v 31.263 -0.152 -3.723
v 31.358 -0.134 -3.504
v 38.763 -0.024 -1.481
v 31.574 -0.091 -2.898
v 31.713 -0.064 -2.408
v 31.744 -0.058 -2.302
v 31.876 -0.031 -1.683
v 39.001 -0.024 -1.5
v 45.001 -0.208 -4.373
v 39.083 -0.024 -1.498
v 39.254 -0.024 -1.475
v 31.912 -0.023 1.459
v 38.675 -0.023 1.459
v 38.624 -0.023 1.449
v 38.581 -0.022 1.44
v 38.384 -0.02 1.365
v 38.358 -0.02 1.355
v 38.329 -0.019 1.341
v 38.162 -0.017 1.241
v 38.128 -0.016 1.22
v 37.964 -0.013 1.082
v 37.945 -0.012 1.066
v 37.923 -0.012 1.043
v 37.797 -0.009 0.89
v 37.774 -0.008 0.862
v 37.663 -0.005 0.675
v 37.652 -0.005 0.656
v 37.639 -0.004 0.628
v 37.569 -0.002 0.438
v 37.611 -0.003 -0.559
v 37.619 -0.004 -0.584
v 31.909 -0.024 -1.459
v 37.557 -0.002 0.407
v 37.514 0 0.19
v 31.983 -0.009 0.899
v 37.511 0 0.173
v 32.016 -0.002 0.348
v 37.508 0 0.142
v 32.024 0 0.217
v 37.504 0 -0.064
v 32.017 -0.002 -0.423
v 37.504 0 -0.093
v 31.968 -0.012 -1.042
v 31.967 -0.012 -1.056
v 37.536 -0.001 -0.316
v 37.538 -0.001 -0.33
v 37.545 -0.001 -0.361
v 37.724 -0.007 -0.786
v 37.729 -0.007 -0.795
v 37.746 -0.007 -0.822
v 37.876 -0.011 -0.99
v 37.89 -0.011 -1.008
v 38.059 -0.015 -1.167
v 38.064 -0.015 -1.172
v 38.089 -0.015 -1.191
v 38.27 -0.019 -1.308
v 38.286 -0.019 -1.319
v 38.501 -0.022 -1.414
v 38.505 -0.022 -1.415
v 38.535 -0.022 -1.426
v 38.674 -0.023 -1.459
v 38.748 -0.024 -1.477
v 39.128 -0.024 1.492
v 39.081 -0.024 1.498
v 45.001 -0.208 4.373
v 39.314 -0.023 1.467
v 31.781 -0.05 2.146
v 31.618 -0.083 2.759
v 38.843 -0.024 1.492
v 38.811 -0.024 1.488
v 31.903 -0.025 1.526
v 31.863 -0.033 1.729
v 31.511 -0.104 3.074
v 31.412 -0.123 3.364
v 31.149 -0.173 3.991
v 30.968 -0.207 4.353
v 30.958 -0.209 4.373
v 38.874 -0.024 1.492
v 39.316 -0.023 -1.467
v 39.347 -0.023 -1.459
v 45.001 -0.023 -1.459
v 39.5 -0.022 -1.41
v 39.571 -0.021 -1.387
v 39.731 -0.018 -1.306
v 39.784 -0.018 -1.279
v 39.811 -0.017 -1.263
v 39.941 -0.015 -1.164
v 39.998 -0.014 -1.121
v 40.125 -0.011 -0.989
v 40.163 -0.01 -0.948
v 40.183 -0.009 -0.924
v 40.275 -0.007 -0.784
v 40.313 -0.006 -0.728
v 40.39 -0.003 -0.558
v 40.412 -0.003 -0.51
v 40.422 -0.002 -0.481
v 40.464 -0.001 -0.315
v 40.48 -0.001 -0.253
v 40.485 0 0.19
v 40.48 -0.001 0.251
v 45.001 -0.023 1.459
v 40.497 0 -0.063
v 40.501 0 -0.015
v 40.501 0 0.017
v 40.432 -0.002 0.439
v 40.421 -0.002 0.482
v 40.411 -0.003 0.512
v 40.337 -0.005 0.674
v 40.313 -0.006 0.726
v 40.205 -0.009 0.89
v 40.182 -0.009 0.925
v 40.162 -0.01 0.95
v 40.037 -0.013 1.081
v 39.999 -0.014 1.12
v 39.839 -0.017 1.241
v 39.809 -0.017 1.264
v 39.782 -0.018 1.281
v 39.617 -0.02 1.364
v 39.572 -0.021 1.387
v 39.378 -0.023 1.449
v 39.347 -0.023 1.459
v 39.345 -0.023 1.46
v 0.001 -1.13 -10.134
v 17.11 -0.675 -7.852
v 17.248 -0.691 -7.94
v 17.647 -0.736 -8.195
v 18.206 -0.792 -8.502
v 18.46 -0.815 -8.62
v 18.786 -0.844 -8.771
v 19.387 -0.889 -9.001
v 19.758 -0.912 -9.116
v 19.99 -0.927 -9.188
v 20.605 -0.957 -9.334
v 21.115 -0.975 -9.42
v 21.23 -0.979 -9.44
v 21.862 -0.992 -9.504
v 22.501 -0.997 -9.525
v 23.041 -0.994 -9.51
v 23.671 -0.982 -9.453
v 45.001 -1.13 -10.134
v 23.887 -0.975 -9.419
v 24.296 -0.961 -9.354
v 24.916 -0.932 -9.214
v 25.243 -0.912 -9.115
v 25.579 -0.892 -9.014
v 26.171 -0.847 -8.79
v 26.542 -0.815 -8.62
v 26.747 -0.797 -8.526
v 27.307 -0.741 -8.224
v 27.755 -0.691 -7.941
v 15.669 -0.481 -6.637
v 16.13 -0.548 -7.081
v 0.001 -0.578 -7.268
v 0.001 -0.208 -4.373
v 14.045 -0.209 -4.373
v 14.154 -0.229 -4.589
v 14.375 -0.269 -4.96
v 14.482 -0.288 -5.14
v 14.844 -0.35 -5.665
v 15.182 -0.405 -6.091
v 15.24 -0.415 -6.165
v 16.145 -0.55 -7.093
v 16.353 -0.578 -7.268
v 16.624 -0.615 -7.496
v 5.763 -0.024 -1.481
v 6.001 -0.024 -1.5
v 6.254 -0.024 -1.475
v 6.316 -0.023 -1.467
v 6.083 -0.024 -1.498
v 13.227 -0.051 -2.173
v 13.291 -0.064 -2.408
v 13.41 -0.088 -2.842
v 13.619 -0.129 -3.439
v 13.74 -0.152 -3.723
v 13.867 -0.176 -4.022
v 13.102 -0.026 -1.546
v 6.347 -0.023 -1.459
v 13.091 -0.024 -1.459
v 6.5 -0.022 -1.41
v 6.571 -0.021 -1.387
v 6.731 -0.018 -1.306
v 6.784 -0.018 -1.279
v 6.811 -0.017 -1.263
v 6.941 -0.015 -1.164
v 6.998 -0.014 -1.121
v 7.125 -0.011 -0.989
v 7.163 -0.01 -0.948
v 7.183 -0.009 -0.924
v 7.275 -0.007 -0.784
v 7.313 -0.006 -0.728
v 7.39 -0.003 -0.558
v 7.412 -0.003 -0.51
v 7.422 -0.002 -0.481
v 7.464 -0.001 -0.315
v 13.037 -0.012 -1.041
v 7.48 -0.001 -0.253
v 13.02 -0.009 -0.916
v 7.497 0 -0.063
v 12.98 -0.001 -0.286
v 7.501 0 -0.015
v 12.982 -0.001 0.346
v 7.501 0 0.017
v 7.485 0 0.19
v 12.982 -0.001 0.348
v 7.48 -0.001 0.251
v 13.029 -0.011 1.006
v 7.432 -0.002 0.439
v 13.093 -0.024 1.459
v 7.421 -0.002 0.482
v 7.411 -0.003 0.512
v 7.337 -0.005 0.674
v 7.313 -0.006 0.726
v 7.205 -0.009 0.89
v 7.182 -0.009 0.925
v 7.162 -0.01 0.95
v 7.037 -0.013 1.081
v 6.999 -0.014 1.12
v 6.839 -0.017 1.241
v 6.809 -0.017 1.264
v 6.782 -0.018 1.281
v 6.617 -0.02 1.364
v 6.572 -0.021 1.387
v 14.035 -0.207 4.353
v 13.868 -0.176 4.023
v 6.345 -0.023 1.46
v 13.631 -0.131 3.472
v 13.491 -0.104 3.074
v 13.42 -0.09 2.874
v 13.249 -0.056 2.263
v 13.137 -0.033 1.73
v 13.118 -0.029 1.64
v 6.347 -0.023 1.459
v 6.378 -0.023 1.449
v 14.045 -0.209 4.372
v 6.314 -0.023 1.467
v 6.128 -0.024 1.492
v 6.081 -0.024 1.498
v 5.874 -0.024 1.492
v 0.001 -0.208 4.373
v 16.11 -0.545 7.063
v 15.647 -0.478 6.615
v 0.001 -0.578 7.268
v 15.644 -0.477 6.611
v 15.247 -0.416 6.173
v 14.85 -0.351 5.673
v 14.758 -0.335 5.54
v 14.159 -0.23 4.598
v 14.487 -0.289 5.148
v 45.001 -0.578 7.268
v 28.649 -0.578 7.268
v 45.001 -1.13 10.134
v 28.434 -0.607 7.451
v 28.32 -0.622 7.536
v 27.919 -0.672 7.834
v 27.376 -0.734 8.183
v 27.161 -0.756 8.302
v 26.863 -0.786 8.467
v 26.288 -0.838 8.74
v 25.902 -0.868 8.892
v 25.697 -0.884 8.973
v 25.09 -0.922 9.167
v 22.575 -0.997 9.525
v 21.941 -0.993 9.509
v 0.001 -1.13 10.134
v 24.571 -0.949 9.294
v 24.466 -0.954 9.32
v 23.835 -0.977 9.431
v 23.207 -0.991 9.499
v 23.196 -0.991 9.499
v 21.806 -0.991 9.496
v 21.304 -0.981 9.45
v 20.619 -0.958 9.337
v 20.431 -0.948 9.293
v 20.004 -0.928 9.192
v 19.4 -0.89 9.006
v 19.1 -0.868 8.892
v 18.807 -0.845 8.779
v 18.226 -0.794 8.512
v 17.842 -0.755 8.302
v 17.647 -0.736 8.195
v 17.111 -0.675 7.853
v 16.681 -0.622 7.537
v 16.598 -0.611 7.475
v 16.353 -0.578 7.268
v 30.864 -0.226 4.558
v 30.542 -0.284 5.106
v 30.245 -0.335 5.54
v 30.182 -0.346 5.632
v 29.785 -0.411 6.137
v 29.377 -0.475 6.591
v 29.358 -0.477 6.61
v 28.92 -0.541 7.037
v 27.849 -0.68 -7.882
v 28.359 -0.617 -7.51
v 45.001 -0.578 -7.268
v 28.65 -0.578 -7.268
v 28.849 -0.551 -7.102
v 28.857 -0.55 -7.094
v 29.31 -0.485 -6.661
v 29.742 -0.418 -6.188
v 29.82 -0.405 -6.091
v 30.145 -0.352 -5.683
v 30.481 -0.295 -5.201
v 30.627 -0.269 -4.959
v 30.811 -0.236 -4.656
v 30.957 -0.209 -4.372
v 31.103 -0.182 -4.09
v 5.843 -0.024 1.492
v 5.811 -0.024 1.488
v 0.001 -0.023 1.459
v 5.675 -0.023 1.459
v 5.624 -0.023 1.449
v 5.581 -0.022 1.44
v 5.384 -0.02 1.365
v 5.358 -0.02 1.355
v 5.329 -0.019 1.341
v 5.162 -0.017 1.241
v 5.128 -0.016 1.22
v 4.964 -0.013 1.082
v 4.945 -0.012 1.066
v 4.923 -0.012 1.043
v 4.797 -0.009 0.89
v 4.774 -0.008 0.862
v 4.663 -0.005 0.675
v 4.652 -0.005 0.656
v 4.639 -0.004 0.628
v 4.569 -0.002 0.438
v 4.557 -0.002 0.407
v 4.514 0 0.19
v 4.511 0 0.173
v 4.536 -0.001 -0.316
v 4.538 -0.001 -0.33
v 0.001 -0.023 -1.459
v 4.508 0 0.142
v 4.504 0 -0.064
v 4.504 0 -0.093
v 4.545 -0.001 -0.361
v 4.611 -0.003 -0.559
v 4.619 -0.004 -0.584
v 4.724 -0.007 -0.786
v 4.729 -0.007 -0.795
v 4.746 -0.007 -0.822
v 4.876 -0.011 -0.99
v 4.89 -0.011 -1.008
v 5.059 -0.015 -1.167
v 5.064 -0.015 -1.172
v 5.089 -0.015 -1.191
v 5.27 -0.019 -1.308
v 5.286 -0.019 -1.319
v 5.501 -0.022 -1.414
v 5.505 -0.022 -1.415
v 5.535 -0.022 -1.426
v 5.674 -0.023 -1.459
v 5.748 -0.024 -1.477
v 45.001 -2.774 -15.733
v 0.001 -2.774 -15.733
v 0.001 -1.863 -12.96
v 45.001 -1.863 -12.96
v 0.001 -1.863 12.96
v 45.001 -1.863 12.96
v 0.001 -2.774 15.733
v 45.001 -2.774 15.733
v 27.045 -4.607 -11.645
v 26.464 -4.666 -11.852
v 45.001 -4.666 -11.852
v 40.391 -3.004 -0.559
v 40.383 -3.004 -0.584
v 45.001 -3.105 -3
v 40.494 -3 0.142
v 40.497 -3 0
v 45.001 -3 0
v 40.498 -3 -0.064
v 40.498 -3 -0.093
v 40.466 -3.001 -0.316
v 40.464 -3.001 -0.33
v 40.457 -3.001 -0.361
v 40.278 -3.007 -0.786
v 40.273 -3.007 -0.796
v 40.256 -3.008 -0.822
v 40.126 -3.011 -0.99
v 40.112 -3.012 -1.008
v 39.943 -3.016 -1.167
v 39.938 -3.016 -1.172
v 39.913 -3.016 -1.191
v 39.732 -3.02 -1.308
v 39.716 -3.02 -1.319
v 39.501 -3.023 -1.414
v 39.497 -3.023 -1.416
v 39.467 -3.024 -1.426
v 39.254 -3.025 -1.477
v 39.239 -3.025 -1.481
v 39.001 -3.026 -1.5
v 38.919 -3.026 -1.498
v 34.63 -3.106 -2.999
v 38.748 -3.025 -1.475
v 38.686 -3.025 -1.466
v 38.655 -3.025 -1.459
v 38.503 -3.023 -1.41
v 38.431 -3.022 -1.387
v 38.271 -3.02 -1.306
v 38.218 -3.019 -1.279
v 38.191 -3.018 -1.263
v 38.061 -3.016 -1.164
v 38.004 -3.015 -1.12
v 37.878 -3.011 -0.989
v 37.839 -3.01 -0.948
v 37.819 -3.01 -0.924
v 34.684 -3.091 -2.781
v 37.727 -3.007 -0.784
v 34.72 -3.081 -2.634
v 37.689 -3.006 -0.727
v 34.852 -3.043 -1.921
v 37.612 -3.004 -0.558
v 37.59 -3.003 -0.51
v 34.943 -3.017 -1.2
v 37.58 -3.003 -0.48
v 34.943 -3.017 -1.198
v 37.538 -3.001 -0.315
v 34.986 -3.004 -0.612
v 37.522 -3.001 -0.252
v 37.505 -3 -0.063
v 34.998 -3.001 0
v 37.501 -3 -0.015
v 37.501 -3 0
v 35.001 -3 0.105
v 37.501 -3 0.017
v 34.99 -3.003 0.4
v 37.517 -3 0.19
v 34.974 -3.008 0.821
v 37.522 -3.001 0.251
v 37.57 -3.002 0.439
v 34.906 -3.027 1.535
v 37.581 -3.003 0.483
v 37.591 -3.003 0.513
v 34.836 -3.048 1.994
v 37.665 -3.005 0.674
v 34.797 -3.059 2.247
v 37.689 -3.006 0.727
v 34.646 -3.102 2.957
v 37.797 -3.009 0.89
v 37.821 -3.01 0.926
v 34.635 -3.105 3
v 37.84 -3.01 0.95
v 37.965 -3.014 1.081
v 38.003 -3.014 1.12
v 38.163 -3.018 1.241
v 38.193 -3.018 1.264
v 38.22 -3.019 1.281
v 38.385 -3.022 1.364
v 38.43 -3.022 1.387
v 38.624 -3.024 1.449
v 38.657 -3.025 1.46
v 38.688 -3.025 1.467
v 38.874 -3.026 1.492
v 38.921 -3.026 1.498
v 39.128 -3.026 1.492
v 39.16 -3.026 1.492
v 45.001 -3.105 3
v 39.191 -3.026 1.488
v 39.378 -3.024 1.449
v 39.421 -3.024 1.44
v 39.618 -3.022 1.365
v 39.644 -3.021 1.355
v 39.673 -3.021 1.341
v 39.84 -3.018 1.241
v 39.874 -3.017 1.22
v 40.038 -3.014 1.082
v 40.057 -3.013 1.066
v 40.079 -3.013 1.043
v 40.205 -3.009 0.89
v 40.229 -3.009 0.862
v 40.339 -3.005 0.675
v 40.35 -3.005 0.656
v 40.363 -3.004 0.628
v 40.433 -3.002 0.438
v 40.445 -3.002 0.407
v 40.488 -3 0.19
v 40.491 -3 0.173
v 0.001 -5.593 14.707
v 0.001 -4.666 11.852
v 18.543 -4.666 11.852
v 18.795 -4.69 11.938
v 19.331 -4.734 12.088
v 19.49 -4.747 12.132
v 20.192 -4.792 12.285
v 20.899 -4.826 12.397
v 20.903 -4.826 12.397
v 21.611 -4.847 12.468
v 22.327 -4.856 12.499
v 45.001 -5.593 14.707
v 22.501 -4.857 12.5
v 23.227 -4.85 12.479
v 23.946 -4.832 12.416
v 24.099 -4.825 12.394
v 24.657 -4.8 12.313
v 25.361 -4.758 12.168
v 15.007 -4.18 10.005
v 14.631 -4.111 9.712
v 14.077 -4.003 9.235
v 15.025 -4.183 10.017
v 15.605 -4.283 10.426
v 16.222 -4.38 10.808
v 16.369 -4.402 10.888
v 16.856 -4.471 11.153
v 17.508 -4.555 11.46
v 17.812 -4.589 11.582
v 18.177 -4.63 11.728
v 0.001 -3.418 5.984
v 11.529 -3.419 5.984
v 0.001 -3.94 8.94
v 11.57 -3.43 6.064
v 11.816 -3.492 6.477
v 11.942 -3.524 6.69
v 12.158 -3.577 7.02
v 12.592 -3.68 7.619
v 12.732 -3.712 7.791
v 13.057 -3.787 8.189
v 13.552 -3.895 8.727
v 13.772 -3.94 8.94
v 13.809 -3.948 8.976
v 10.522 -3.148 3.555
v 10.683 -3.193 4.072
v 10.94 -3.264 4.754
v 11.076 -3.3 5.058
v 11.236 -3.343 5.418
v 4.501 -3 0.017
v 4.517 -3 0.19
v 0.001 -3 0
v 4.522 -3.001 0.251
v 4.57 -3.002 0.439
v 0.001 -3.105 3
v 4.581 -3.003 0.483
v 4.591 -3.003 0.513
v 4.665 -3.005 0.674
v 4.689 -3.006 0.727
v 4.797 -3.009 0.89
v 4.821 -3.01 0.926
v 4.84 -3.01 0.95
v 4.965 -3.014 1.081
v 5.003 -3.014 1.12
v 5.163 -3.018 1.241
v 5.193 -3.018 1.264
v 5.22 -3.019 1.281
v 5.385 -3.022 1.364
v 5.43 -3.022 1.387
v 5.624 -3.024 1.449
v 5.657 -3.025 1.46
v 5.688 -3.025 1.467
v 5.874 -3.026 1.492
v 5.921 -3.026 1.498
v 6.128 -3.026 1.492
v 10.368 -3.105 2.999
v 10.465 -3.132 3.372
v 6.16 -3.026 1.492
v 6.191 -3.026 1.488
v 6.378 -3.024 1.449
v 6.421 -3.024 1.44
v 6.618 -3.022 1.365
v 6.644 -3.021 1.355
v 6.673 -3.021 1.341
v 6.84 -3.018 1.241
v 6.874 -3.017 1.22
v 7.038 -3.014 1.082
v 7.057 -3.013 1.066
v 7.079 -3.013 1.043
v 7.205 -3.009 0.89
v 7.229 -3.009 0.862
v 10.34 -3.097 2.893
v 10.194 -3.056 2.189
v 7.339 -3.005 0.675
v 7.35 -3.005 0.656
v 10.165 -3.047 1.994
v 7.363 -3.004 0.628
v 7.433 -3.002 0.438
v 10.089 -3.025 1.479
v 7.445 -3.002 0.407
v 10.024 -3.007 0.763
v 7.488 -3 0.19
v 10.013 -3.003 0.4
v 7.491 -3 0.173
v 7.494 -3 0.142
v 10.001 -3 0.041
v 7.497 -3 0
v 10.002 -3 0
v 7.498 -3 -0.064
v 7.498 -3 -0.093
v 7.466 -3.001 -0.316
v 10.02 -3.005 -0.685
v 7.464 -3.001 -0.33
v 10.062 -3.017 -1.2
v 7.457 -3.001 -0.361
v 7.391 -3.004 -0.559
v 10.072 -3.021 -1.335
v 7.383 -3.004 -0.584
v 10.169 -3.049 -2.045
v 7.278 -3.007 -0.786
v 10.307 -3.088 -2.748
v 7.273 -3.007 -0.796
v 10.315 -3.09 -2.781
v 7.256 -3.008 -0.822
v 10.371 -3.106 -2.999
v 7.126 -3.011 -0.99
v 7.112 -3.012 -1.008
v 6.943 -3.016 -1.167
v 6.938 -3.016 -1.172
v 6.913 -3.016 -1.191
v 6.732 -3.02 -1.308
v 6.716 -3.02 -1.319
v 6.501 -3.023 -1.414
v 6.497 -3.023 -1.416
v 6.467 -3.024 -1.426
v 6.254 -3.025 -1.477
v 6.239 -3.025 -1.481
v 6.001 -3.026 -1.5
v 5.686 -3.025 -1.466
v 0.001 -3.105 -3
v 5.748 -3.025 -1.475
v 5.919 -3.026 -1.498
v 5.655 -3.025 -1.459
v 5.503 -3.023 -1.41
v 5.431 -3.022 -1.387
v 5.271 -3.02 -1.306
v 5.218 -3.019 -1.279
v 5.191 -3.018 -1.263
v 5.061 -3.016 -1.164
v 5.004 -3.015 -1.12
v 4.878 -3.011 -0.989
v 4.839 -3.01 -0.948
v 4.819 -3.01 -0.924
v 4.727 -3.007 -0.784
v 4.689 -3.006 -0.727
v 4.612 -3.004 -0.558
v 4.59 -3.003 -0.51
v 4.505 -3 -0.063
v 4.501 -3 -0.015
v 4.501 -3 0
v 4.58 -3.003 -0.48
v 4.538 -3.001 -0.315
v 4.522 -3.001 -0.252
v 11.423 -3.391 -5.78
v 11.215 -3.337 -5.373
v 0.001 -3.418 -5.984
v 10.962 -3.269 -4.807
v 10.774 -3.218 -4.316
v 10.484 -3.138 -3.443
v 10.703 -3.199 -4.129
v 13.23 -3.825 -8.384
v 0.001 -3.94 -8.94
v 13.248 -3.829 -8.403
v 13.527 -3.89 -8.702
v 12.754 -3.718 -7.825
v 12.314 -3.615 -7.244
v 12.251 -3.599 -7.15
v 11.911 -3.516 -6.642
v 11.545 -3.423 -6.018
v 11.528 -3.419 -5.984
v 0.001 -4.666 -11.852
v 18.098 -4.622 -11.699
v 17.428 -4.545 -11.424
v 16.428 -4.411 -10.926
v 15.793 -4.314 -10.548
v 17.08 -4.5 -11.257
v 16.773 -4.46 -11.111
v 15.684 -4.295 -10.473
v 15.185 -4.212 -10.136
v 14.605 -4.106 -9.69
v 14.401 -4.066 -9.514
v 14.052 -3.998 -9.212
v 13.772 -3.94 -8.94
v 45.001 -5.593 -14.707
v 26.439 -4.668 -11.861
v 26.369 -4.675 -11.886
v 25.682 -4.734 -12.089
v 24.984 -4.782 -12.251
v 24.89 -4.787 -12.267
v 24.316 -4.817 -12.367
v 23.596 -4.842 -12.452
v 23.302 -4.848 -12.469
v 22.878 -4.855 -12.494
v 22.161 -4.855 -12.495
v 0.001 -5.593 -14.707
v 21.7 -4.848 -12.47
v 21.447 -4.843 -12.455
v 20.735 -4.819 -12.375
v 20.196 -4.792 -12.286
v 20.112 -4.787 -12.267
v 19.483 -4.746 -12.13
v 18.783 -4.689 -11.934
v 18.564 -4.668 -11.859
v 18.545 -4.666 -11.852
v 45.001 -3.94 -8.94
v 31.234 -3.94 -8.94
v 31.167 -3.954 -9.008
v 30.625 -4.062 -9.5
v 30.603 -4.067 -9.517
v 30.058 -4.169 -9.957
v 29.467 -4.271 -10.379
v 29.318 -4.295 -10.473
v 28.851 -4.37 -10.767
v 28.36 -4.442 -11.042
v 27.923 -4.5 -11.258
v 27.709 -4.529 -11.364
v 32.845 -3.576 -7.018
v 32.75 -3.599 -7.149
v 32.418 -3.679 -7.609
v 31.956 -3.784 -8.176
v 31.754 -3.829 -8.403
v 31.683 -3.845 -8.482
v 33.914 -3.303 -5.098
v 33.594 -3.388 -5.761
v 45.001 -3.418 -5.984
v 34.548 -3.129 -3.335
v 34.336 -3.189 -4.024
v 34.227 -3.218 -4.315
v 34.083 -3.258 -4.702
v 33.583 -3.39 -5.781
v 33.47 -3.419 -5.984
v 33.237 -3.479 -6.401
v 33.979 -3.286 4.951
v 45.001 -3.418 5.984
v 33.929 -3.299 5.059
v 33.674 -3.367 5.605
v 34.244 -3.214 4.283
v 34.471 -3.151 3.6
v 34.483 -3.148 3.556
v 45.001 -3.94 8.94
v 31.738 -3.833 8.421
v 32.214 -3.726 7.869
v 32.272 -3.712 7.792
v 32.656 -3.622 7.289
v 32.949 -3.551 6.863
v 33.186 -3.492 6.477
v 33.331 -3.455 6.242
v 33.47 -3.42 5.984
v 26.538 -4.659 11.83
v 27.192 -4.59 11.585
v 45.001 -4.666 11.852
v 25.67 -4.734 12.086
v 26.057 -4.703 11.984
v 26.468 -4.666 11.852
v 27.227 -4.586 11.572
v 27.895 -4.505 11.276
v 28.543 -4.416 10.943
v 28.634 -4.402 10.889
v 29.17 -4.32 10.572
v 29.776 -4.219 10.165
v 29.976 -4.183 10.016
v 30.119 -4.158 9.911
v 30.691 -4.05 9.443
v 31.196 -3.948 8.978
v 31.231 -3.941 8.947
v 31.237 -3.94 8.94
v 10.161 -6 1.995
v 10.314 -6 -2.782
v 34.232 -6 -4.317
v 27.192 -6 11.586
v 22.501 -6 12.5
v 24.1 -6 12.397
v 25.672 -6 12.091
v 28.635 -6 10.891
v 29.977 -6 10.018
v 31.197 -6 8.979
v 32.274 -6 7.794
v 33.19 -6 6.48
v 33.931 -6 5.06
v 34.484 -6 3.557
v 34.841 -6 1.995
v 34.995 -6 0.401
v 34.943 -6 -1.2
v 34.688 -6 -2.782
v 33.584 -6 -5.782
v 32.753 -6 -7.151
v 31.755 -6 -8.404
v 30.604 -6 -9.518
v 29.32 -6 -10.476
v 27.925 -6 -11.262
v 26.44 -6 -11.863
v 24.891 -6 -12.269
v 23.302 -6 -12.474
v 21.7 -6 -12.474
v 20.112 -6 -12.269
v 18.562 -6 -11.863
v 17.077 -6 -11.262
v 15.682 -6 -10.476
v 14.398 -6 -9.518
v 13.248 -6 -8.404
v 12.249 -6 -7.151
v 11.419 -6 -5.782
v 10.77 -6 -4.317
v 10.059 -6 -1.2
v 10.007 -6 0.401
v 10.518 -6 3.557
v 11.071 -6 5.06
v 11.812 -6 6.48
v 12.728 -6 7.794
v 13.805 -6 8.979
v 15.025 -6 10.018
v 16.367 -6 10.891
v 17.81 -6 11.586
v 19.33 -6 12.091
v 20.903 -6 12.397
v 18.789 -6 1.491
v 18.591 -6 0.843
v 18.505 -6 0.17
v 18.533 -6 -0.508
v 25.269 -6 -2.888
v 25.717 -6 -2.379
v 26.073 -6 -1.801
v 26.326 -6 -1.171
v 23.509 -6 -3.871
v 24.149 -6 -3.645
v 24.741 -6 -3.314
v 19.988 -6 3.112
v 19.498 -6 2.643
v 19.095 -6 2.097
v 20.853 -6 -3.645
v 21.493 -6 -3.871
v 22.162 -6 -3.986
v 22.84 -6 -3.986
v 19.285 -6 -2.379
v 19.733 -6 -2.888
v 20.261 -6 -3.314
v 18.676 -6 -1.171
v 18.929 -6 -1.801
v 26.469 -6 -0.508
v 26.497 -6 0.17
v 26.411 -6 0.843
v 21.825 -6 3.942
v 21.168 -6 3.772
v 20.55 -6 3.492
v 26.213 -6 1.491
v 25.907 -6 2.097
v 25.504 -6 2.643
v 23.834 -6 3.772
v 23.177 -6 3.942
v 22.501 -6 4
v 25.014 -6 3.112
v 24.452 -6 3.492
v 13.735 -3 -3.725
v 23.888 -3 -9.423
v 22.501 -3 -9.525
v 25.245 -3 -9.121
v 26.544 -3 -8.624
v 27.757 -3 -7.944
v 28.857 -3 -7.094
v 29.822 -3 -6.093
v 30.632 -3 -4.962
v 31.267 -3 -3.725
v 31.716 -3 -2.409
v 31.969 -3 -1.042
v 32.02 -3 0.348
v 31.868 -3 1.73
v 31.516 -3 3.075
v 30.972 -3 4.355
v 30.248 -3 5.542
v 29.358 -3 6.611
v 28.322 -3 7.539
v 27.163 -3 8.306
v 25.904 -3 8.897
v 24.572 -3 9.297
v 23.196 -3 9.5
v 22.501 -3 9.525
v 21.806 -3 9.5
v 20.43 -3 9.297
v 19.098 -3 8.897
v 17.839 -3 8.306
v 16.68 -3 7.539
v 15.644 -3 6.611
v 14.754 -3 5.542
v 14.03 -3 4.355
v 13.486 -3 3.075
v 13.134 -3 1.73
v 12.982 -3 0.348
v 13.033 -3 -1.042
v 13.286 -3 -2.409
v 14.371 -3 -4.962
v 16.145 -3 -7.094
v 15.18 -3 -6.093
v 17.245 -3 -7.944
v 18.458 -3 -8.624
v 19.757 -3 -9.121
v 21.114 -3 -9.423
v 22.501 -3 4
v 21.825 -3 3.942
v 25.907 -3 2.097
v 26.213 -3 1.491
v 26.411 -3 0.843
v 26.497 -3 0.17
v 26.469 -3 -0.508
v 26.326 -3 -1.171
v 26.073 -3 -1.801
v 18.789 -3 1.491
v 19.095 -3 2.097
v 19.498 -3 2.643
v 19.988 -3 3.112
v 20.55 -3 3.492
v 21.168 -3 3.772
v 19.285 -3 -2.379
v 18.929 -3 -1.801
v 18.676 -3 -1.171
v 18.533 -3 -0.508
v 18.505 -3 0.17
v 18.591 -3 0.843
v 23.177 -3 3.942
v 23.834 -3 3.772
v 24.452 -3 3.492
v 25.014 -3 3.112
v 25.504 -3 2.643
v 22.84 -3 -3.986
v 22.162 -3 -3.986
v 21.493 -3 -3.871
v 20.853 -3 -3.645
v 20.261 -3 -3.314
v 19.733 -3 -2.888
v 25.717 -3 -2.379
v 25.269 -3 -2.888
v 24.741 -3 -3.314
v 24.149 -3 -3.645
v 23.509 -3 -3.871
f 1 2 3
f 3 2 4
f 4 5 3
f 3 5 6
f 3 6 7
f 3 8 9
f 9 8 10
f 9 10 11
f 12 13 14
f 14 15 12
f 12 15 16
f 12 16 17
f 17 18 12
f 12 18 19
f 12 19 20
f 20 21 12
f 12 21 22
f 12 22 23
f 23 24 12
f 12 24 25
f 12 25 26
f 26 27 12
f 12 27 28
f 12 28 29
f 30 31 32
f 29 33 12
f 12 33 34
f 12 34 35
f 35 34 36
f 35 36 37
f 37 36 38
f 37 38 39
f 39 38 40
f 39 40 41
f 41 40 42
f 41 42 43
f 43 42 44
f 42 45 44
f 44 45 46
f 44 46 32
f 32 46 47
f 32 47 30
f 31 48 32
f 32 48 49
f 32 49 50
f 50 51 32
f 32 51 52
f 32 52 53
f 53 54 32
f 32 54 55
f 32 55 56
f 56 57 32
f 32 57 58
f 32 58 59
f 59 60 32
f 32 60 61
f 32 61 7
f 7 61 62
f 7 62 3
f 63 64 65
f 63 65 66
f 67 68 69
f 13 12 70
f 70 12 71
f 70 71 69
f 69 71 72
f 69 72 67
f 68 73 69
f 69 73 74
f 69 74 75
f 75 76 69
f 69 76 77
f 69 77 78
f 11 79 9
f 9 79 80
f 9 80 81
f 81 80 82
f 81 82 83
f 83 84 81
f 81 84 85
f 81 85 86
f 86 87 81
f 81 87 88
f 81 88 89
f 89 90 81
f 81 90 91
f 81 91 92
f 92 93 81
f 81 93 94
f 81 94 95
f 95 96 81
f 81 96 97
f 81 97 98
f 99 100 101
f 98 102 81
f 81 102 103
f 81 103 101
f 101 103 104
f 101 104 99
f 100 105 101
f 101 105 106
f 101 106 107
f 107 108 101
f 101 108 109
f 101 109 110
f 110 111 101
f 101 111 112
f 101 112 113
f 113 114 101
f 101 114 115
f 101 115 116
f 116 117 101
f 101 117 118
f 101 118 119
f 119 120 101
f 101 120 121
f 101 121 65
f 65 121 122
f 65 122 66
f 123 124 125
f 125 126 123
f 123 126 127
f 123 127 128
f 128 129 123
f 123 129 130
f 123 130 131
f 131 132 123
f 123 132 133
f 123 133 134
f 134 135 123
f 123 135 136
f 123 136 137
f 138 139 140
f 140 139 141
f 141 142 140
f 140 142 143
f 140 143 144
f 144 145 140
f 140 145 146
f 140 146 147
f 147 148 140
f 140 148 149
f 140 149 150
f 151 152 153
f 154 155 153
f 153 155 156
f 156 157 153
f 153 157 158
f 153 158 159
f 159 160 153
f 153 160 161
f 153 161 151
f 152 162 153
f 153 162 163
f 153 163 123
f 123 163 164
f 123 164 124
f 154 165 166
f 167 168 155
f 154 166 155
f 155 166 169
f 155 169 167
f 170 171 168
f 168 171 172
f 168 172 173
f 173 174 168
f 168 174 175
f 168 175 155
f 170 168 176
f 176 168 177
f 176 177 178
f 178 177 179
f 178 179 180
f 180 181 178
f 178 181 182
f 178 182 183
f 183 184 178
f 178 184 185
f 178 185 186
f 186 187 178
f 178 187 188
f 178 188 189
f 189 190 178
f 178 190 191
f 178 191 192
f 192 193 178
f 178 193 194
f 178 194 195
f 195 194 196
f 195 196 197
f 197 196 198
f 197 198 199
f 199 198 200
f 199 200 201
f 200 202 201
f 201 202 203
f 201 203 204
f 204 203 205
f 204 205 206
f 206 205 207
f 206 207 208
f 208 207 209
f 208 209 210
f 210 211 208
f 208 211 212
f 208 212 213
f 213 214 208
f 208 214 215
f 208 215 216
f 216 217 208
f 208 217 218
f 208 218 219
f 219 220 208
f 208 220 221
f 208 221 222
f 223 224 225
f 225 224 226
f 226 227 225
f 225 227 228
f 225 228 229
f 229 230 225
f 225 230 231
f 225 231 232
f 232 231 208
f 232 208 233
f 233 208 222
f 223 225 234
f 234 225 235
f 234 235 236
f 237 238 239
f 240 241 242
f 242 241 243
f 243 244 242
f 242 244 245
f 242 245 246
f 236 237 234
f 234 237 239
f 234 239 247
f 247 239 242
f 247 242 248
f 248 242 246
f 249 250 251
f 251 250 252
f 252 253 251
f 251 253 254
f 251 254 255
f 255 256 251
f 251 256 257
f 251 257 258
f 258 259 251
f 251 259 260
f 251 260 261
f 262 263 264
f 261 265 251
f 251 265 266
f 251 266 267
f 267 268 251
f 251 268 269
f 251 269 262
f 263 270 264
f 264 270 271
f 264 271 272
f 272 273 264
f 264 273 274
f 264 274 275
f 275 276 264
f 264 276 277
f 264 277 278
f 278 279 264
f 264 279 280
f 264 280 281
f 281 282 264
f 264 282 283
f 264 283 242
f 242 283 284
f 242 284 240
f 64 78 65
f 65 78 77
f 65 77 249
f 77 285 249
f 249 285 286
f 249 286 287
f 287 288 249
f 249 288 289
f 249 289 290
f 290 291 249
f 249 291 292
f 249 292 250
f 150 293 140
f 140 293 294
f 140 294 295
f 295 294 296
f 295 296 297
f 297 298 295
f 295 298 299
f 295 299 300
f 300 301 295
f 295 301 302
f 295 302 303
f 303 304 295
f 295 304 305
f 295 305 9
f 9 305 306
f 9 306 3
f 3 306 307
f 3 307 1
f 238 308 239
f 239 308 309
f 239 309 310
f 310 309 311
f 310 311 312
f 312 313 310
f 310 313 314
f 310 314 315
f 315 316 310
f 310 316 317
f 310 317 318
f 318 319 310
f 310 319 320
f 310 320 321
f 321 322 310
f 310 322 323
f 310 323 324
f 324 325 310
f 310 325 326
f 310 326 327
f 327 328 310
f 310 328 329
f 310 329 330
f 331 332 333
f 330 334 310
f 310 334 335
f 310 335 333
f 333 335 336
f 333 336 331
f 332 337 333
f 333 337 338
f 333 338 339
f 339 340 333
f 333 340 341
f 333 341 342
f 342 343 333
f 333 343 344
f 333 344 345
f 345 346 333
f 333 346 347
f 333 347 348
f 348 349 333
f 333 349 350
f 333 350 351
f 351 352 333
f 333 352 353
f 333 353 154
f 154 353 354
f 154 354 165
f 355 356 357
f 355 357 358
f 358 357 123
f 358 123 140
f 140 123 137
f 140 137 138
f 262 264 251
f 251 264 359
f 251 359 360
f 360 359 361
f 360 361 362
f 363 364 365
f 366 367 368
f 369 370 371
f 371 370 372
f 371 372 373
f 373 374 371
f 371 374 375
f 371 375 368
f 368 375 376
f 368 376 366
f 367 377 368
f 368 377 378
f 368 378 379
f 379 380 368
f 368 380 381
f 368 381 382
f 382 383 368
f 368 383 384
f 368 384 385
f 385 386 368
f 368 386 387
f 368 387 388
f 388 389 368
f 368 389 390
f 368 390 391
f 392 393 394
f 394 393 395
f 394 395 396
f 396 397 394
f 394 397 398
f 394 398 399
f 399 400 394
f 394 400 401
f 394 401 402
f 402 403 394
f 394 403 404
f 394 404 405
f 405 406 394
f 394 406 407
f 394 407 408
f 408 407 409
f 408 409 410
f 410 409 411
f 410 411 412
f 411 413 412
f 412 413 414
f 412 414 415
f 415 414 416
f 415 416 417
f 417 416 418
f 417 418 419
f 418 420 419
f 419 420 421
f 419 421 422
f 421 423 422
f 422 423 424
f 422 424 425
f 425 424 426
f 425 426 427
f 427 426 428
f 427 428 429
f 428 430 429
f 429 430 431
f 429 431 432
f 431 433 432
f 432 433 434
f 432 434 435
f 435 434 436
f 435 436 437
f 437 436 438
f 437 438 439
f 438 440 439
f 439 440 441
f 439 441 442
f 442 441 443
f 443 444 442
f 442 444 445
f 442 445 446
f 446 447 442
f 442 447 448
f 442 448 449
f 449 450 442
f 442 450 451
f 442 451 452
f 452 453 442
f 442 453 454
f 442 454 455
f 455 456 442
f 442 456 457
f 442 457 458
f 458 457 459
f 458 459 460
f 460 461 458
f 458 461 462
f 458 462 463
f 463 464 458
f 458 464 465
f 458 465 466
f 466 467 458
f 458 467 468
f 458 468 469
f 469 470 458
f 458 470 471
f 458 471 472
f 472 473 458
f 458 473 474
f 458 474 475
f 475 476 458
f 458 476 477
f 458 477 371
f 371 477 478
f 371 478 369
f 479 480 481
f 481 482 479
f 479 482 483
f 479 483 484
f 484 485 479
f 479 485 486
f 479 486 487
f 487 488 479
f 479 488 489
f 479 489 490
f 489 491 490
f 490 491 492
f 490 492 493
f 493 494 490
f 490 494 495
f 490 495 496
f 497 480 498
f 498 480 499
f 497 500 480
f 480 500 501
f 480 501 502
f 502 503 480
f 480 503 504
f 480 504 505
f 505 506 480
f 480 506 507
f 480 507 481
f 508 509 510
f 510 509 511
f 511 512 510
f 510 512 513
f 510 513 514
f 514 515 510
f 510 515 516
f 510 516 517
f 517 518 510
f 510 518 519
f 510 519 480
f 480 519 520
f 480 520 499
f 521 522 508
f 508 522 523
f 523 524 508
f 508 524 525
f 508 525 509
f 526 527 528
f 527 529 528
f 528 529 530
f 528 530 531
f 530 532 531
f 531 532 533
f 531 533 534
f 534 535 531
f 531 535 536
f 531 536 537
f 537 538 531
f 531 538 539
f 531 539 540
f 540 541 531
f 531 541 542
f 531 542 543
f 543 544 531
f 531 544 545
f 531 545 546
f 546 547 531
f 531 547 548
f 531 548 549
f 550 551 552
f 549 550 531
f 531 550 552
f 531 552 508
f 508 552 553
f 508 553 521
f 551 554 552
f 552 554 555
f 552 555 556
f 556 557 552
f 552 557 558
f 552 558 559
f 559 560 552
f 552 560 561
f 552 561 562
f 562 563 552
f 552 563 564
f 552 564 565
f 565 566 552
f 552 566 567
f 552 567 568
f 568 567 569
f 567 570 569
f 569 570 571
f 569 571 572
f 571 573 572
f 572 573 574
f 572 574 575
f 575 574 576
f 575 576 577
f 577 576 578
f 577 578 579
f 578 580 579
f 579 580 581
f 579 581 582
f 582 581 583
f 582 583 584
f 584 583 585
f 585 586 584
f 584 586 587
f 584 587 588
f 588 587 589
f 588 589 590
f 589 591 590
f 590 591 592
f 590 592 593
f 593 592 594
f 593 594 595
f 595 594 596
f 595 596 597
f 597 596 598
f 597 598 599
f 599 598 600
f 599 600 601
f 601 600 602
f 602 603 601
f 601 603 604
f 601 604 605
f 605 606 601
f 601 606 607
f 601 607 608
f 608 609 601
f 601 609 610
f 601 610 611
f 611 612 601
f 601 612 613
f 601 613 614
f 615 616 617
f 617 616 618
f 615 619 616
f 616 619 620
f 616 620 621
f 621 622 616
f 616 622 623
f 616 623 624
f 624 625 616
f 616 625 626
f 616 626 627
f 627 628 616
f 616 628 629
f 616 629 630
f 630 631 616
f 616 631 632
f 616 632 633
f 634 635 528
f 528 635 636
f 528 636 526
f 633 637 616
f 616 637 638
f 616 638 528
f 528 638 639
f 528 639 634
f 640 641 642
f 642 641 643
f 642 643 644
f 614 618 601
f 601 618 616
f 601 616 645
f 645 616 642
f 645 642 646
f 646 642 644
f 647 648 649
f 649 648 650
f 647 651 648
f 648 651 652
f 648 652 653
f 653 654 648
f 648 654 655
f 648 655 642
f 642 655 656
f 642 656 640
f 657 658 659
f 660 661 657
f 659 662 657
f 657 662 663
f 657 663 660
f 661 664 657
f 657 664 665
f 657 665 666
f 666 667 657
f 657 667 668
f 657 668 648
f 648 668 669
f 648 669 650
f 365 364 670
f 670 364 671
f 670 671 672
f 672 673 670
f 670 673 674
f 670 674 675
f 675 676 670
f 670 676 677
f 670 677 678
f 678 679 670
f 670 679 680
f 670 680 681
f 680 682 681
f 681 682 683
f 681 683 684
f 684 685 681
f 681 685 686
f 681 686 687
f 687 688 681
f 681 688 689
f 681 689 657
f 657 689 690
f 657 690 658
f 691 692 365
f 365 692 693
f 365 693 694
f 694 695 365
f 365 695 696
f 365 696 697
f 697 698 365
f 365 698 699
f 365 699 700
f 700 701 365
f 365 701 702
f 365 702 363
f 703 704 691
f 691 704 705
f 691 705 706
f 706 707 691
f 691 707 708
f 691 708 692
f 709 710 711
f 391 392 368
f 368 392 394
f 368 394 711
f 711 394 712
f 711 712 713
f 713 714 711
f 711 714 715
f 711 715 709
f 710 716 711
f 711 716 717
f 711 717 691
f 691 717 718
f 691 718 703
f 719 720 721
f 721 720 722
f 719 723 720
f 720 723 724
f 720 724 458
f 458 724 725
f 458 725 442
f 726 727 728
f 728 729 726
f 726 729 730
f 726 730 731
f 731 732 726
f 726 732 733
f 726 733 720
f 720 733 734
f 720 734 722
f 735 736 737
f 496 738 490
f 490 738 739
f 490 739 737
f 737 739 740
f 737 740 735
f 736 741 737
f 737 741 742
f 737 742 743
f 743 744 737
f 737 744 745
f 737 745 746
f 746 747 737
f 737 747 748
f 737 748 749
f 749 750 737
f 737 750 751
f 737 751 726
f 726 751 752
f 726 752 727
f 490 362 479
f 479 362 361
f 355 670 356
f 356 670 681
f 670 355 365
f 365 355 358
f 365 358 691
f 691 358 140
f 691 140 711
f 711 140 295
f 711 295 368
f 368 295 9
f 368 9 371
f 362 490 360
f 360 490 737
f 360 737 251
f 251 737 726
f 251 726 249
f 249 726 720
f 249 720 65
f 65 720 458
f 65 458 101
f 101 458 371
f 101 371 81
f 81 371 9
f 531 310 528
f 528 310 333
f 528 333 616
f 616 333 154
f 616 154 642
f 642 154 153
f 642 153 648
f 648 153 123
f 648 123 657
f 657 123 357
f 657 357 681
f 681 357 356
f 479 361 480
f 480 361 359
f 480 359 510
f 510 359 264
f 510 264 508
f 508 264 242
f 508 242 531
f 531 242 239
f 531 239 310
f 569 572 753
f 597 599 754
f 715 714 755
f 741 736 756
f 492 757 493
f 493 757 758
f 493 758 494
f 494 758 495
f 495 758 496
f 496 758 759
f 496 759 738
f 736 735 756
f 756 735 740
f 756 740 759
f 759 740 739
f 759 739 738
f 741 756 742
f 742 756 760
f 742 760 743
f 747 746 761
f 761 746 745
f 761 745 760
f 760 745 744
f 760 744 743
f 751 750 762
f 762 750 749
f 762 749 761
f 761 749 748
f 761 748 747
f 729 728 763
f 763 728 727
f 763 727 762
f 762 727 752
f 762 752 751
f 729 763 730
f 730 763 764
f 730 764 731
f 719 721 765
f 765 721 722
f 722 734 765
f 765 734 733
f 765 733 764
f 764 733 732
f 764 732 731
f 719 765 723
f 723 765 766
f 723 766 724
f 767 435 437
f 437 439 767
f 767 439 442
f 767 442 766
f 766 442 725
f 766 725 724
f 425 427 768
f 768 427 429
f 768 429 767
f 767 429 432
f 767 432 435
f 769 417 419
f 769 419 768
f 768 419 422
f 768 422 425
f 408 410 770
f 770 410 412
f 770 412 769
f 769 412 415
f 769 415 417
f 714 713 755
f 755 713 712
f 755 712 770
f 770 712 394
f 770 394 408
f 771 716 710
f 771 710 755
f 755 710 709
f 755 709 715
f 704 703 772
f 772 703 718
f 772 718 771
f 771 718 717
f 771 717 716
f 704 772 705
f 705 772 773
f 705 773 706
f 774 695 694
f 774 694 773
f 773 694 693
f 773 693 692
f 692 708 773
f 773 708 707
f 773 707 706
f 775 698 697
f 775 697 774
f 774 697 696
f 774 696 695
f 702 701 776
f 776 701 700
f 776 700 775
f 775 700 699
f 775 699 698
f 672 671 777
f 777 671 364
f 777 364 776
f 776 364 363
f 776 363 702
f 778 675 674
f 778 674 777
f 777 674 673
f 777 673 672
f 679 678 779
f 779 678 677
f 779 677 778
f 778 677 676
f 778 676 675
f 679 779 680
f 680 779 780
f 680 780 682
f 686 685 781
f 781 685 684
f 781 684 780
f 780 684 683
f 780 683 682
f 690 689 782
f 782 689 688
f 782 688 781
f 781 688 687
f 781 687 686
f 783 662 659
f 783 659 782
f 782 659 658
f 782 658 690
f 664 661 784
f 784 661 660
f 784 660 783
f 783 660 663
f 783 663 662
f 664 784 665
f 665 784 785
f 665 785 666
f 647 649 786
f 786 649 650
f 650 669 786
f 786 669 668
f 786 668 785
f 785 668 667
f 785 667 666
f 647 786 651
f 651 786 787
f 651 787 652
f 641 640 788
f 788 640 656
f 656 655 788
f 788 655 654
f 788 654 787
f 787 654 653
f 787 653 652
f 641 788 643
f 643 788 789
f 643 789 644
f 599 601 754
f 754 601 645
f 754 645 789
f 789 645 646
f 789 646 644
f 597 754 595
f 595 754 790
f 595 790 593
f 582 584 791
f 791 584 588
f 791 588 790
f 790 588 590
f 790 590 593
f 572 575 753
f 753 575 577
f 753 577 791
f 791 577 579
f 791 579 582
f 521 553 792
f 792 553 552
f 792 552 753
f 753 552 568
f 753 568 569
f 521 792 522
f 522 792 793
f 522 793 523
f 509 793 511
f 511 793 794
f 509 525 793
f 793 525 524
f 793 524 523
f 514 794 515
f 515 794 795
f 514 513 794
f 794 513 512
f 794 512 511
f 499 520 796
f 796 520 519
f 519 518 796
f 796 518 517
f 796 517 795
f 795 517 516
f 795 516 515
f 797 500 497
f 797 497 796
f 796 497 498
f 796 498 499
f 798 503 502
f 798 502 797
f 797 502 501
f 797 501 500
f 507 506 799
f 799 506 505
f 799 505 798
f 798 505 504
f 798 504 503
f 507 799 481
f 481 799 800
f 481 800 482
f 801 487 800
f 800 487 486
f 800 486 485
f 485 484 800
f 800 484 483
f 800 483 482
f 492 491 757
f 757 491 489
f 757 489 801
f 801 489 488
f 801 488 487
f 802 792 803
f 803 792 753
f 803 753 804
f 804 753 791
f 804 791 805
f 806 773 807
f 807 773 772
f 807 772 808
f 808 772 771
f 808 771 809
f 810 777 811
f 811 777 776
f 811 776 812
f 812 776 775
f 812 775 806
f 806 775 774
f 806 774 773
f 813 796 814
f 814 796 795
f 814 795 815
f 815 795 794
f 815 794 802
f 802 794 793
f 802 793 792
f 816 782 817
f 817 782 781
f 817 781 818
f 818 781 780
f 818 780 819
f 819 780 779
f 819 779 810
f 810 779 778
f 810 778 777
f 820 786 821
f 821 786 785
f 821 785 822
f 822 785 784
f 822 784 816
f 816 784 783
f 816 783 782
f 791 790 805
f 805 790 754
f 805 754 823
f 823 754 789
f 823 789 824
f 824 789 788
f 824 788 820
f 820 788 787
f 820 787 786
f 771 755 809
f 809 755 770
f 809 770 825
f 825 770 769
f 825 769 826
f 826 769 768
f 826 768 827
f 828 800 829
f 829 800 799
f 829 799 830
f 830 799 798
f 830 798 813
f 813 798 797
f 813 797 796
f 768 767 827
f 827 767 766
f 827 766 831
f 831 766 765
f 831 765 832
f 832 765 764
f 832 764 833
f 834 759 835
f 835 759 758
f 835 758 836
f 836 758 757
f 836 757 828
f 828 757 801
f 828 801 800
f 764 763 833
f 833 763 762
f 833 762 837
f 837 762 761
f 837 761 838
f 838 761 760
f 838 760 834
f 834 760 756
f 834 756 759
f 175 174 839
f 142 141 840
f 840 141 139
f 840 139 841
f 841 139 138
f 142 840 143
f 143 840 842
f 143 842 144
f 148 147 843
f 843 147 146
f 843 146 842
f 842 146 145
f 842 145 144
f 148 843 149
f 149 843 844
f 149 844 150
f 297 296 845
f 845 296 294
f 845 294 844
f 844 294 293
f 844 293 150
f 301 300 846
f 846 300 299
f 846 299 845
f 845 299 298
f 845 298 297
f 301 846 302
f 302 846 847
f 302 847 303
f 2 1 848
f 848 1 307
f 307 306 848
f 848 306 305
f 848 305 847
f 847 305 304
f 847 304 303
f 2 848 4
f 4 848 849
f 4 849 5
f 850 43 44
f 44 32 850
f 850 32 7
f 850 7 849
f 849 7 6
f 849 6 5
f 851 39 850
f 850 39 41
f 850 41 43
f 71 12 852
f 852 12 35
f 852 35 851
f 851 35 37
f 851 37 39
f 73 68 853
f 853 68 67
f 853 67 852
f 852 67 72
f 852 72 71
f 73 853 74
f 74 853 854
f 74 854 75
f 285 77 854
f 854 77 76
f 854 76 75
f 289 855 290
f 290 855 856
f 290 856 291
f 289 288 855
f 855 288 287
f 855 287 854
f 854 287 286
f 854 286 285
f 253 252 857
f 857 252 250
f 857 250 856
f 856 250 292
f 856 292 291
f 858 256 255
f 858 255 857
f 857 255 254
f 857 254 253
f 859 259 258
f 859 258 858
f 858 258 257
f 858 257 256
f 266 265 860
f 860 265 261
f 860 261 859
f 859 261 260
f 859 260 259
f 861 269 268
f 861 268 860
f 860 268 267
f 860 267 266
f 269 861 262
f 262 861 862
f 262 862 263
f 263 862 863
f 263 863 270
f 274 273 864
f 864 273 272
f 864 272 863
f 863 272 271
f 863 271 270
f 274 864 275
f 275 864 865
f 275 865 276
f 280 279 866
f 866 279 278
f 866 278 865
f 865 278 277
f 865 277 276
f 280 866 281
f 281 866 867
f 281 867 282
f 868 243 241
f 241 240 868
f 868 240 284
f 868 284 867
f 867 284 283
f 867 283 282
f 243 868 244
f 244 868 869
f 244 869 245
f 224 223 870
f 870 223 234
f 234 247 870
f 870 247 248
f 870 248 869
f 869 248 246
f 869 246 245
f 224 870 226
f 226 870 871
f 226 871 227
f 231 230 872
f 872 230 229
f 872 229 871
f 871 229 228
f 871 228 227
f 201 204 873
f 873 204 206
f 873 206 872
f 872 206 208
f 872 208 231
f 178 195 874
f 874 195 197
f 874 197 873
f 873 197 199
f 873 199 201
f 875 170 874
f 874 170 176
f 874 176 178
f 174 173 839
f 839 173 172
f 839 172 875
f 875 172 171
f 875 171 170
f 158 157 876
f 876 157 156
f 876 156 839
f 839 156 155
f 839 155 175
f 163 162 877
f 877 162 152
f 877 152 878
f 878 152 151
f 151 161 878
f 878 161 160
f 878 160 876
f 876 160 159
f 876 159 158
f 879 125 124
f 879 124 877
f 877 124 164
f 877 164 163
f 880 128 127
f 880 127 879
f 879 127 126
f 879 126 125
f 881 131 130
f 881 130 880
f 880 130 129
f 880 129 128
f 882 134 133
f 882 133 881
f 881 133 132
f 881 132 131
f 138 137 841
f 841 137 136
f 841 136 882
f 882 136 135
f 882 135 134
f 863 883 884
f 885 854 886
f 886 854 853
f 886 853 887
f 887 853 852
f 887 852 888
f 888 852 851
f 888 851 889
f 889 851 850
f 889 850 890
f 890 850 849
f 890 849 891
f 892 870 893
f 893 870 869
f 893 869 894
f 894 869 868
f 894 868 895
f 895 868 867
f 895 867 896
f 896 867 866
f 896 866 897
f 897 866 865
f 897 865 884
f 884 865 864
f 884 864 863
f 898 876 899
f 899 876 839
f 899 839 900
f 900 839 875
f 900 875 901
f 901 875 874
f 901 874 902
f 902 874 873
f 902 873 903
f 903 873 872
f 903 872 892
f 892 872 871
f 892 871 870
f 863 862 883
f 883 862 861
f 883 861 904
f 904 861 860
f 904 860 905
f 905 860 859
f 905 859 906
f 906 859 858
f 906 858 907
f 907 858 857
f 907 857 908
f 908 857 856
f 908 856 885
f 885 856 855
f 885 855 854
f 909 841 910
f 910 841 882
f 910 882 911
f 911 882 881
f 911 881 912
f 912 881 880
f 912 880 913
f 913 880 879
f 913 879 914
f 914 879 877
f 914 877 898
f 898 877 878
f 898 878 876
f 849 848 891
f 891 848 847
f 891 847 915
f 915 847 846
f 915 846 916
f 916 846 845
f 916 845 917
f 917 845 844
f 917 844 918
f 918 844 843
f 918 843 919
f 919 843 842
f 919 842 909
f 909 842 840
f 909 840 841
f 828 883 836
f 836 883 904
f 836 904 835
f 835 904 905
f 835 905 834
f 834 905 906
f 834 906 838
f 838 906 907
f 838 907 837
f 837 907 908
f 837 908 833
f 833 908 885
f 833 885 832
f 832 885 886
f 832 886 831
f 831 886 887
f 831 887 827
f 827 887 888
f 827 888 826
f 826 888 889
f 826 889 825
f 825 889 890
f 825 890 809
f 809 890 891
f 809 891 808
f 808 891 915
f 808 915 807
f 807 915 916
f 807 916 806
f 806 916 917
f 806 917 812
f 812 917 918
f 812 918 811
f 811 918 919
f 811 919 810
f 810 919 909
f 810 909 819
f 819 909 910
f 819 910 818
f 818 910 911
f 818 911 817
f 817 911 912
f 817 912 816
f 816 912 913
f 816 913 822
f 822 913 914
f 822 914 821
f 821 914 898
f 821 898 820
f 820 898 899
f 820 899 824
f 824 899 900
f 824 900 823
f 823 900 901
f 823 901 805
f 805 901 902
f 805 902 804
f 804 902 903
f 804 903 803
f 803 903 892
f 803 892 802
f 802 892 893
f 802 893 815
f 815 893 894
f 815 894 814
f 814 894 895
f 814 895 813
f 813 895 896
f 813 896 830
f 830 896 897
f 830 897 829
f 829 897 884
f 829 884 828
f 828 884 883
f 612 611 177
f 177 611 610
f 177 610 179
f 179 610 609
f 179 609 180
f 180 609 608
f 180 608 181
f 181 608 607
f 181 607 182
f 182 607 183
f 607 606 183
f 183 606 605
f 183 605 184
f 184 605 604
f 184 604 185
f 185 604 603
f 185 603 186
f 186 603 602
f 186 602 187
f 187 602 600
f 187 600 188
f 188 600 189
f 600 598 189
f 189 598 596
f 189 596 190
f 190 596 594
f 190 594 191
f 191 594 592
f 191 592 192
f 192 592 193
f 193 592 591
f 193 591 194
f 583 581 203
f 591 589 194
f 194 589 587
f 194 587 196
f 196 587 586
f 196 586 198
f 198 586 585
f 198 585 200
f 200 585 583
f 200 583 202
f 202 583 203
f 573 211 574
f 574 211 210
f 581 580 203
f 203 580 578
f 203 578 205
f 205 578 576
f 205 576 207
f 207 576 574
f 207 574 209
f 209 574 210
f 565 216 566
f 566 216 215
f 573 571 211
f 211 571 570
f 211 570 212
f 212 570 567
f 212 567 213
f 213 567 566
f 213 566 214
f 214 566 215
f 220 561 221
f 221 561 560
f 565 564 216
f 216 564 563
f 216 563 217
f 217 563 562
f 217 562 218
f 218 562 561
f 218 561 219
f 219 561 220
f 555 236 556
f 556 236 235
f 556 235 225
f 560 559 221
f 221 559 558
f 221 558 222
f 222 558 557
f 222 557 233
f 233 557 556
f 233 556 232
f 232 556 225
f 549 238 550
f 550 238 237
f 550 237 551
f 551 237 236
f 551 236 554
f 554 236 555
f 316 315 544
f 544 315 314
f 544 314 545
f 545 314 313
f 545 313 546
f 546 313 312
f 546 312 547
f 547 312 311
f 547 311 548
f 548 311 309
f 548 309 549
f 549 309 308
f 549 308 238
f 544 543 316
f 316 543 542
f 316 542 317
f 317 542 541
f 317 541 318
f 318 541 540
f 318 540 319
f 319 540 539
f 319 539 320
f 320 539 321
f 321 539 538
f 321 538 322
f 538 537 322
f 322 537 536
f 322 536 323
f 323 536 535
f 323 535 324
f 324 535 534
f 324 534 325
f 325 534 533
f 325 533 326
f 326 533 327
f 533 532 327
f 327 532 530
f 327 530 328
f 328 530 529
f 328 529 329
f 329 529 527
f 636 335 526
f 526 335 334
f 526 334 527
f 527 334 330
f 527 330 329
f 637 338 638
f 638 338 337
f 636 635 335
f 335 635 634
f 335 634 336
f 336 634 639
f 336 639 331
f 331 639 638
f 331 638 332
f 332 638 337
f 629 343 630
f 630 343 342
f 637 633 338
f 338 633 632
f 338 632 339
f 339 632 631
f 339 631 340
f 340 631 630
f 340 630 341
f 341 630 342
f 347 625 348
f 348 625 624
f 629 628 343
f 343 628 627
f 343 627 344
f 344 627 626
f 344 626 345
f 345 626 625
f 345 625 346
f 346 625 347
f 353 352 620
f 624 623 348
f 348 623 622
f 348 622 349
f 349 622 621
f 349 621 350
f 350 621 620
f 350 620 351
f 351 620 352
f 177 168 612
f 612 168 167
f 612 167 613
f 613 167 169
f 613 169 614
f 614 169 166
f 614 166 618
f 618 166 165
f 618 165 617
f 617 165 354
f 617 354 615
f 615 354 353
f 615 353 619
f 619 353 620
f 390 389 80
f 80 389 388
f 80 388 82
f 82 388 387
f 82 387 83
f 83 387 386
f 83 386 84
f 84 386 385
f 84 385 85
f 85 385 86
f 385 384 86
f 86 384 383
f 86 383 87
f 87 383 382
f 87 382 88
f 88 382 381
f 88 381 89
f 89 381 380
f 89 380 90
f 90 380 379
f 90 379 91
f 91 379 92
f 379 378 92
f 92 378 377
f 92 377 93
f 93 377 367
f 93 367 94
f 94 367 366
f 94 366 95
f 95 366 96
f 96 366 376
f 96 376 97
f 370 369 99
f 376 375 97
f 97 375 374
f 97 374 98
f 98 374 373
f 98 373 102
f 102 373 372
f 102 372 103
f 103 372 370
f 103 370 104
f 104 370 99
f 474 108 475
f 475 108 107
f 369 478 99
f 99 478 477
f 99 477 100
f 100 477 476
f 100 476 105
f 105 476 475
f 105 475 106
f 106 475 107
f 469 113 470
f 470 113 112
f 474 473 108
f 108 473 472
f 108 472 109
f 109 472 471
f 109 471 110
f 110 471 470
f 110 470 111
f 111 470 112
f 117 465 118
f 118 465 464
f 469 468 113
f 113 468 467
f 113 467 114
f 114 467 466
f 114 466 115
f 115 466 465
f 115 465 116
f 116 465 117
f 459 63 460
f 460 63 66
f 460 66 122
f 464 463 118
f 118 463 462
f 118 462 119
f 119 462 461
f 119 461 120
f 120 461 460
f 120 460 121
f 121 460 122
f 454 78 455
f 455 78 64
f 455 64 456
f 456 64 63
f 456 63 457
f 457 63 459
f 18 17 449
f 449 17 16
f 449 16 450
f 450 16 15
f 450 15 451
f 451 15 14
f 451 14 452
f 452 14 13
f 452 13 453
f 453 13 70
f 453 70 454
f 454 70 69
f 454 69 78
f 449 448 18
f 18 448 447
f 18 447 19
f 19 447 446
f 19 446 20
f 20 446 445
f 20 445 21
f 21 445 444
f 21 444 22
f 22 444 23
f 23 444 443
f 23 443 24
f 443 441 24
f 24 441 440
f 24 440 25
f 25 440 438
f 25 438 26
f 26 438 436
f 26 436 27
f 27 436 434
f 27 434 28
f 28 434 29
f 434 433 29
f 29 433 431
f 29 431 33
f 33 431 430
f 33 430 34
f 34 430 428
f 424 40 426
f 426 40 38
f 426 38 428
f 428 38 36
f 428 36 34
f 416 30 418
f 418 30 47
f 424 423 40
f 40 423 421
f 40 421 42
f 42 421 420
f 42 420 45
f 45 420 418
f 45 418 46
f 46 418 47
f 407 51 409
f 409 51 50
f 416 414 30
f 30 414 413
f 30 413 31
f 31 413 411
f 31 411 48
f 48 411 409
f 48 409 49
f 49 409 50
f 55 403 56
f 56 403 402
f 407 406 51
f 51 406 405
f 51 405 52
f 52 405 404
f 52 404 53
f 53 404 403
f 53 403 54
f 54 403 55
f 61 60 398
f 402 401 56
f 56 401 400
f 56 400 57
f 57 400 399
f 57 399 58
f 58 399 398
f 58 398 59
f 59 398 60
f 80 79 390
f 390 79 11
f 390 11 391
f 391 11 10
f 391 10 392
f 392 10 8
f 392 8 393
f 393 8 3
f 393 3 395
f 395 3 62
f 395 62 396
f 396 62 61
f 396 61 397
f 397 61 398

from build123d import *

# Parameters (mm, degrees)
BOSS_EXTRUDE1_DEPTH     = 45
SKETCH2_R               = 12.5
BOSS_EXTRUDE2_DEPTH     = 3
SKETCH3_R               = 9.525
CUT_EXTRUDE1_DEPTH      = 14
SKETCH4_R               = 4
CUT_EXTRUDE2_DEPTH      = 14
CUT_EXTRUDE3_DEPTH      = 14
CUT_EXTRUDE3_DEPTH_BACK = 14
SKETCH5_R               = 1.5


with BuildPart() as part:
    # Sketch1 → Boss-Extrude1 (new body)
    with BuildSketch(Plane(origin=(0, 0, 0), x_dir=(0, 0, -1), z_dir=(1, 0, 0))):
        with BuildLine():
            Line((-14.706866163, -5.593217306), (-15.732926593, -2.774139444))
            ThreePointArc((-15.732926593, -2.774139444), (0, 0), (15.732926593, -2.774139444))
            Line((15.732926593, -2.774139444), (14.706866163, -5.593217306))
            ThreePointArc((14.706866163, -5.593217306), (0, -3), (-14.706866163, -5.593217306))
        make_face()
    extrude(amount=BOSS_EXTRUDE1_DEPTH)

    # Sketch2 → Boss-Extrude2 (add)
    with BuildSketch(Plane(origin=(0, -3, 0), x_dir=(1, 0, 0), z_dir=(0, 1, 0))):
        with Locations((22.5, 0)):
            Circle(SKETCH2_R)
    extrude(amount=-BOSS_EXTRUDE2_DEPTH)

    # Sketch3 → Cut-Extrude1 (cut)
    with BuildSketch(Plane(origin=(0, -3, 0), x_dir=(1, 0, 0), z_dir=(0, 1, 0))):
        with Locations((22.5, 0)):
            Circle(SKETCH3_R)
    extrude(amount=CUT_EXTRUDE1_DEPTH, mode=Mode.SUBTRACT)

    # Sketch4 → Cut-Extrude2 (cut)
    with BuildSketch(Plane(origin=(0, -3, 0), x_dir=(1, 0, 0), z_dir=(0, 1, 0))):
        with Locations((22.5, 0)):
            Circle(SKETCH4_R)
    extrude(amount=-CUT_EXTRUDE2_DEPTH, mode=Mode.SUBTRACT)

    # Sketch5 → Cut-Extrude3 (cut, two sides: drawn at the far end of the back side and taken through both)
    with BuildSketch(Plane(origin=(0, -3, 0), x_dir=(1, 0, 0), z_dir=(0, 1, 0)).offset(-CUT_EXTRUDE3_DEPTH_BACK)):
        with Locations((6, 0)):
            Circle(SKETCH5_R)
        with Locations((39, 0)):
            Circle(SKETCH5_R)
    extrude(amount=CUT_EXTRUDE3_DEPTH + CUT_EXTRUDE3_DEPTH_BACK, mode=Mode.SUBTRACT)


solid = part.part
